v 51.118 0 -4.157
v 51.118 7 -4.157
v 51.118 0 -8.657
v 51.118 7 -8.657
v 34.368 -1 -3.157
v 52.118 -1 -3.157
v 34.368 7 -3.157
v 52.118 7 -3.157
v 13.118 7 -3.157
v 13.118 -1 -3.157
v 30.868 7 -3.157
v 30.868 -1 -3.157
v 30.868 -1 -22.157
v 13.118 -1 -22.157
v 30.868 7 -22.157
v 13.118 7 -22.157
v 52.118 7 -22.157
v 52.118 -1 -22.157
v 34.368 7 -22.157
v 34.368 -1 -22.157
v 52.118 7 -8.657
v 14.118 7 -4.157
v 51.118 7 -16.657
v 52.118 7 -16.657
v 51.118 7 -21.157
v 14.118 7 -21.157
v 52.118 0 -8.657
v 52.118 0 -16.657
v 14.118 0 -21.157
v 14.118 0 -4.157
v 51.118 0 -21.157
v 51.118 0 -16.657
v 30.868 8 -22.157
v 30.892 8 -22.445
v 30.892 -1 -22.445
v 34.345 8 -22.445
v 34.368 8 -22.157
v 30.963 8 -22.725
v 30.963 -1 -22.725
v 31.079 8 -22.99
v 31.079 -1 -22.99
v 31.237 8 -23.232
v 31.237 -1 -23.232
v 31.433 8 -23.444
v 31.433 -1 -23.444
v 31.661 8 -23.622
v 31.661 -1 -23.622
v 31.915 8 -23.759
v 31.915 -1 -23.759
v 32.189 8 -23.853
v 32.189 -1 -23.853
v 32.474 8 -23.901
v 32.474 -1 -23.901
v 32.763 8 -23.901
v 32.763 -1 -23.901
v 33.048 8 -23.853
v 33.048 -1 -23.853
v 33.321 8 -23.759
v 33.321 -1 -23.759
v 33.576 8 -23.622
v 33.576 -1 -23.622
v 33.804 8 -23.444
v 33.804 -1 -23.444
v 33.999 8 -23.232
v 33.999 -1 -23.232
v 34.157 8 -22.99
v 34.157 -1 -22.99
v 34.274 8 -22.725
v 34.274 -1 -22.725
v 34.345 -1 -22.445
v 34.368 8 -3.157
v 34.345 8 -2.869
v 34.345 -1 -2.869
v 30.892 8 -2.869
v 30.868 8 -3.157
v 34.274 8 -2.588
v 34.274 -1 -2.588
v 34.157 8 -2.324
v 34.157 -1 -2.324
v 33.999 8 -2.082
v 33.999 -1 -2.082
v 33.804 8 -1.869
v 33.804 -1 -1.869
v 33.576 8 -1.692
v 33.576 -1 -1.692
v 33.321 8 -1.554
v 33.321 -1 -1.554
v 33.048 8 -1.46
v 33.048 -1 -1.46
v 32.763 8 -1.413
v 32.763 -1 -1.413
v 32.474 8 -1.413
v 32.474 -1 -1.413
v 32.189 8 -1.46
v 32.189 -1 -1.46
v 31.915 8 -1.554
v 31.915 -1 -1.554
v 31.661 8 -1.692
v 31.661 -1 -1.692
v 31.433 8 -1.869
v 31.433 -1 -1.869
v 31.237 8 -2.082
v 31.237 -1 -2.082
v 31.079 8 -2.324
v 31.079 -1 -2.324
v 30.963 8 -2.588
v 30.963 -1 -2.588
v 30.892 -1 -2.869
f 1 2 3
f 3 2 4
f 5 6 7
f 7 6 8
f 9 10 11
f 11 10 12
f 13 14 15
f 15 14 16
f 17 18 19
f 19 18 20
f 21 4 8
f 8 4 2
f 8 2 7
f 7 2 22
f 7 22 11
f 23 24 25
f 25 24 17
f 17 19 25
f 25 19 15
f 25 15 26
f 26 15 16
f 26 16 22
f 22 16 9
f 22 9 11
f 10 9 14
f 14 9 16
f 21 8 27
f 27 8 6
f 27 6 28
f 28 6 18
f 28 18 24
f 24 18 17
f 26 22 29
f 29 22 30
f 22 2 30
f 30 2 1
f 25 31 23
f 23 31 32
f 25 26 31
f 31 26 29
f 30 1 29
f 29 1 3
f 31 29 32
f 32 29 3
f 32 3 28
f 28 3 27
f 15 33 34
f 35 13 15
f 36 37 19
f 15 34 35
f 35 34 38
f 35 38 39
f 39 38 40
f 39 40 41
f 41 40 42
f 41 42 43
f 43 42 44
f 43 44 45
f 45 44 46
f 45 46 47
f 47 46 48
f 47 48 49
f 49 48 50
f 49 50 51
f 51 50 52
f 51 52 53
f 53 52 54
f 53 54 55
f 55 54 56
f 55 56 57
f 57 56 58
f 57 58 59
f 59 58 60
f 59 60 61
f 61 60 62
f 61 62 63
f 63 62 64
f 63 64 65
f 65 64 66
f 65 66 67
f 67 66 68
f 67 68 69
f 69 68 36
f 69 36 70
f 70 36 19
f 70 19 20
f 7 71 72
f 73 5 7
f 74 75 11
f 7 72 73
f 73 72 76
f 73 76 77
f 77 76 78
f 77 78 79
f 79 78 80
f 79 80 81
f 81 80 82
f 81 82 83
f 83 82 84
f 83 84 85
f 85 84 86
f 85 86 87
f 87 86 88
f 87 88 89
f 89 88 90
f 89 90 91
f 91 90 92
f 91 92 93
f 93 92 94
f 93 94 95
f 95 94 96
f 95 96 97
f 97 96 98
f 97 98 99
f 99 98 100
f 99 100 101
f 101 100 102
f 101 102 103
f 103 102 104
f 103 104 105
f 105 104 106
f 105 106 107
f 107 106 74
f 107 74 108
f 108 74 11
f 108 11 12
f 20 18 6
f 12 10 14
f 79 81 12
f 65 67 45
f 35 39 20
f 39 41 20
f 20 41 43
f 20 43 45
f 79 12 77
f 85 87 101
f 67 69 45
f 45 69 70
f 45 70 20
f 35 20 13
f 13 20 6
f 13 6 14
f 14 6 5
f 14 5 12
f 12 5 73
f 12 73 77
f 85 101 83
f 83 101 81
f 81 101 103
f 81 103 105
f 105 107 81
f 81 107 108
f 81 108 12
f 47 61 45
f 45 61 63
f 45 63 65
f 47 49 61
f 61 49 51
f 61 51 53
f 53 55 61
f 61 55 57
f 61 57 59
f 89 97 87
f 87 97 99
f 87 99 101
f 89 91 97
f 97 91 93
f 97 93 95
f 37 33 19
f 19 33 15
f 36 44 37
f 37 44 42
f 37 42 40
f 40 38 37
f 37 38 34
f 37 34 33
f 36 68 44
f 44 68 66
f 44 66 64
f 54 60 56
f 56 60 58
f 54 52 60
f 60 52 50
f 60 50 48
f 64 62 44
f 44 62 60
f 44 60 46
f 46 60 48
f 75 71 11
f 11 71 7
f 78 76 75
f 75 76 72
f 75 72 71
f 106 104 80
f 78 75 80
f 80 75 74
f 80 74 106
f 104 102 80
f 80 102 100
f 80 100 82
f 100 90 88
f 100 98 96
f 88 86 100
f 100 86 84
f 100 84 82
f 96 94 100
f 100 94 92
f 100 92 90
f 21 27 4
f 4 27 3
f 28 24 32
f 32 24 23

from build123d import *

# Parameters (mm, degrees)
SKETCH1_W           = 39
SKETCH1_H           = 19
SKETCH1_W_2         = 37
SKETCH1_H_2         = 17
BOSS_EXTRUDE1_DEPTH = 7
BOSS_EXTRUDE2_DEPTH = 1
BOSS_EXTRUDE3_START = 8
BOSS_EXTRUDE3_DEPTH = 8
SKETCH4_W           = 8
SKETCH4_H           = 7
CUT_EXTRUDE1_DEPTH  = 8


with BuildPart() as part:
    # Sketch1 → Boss-Extrude1 (new body)
    with BuildSketch(Plane(origin=(0, 0, 0), x_dir=(1, 0, 0), z_dir=(0, 1, 0))):
        with Locations((32.618409138, 12.656662155)):
            Rectangle(SKETCH1_W, SKETCH1_H)
        with Locations((32.618409138, 12.656662155)):
            Rectangle(SKETCH1_W_2, SKETCH1_H_2, mode=Mode.SUBTRACT)
    extrude(amount=BOSS_EXTRUDE1_DEPTH)

    # Sketch2 → Boss-Extrude2 (add)
    with BuildSketch(Plane.XZ):
        with BuildLine():
            Line((13.118409138, -3.156662155), (30.868409138, -3.156662155))
            ThreePointArc((30.868409138, -3.156662155), (32.618409138, -1.406662155), (34.368409138, -3.156662155))
            Line((34.368409138, -3.156662155), (52.118409138, -3.156662155))
            Line((52.118409138, -3.156662155), (52.118409138, -22.156662155))
            Line((52.118409138, -22.156662155), (34.368409138, -22.156662155))
            ThreePointArc((34.368409138, -22.156662155), (32.618409138, -23.906662155), (30.868409138, -22.156662155))
            Line((30.868409138, -22.156662155), (13.118409138, -22.156662155))
            Line((13.118409138, -22.156662155), (13.118409138, -3.156662155))
        make_face()
    extrude(amount=BOSS_EXTRUDE2_DEPTH)

    # Sketch3 → Boss-Extrude3 (add)
    with BuildSketch(Plane(origin=(0, 0, 0), x_dir=(1, 0, 0), z_dir=(0, 1, 0)).offset(BOSS_EXTRUDE3_START)):
        with BuildLine():
            Line((30.868409138, 22.156662155), (34.368409138, 22.156662155))
            ThreePointArc((34.368409138, 22.156662155), (32.618409138, 23.906662155), (30.868409138, 22.156662155))
        make_face()
        with BuildLine():
            Line((30.868409138, 3.156662155), (34.368409138, 3.156662155))
            ThreePointArc((34.368409138, 3.156662155), (32.618409138, 1.406662155), (30.868409138, 3.156662155))
        make_face()
    extrude(amount=-BOSS_EXTRUDE3_DEPTH)

    # Sketch4 → Cut-Extrude1 (cut)
    with BuildSketch(Plane(origin=(52.118409138, 0, 0), x_dir=(0, 0, -1), z_dir=(1, 0, 0))):
        with Locations((12.656662155, 3.5)):
            Rectangle(SKETCH4_W, SKETCH4_H)
    extrude(amount=-CUT_EXTRUDE1_DEPTH, mode=Mode.SUBTRACT)


solid = part.part
